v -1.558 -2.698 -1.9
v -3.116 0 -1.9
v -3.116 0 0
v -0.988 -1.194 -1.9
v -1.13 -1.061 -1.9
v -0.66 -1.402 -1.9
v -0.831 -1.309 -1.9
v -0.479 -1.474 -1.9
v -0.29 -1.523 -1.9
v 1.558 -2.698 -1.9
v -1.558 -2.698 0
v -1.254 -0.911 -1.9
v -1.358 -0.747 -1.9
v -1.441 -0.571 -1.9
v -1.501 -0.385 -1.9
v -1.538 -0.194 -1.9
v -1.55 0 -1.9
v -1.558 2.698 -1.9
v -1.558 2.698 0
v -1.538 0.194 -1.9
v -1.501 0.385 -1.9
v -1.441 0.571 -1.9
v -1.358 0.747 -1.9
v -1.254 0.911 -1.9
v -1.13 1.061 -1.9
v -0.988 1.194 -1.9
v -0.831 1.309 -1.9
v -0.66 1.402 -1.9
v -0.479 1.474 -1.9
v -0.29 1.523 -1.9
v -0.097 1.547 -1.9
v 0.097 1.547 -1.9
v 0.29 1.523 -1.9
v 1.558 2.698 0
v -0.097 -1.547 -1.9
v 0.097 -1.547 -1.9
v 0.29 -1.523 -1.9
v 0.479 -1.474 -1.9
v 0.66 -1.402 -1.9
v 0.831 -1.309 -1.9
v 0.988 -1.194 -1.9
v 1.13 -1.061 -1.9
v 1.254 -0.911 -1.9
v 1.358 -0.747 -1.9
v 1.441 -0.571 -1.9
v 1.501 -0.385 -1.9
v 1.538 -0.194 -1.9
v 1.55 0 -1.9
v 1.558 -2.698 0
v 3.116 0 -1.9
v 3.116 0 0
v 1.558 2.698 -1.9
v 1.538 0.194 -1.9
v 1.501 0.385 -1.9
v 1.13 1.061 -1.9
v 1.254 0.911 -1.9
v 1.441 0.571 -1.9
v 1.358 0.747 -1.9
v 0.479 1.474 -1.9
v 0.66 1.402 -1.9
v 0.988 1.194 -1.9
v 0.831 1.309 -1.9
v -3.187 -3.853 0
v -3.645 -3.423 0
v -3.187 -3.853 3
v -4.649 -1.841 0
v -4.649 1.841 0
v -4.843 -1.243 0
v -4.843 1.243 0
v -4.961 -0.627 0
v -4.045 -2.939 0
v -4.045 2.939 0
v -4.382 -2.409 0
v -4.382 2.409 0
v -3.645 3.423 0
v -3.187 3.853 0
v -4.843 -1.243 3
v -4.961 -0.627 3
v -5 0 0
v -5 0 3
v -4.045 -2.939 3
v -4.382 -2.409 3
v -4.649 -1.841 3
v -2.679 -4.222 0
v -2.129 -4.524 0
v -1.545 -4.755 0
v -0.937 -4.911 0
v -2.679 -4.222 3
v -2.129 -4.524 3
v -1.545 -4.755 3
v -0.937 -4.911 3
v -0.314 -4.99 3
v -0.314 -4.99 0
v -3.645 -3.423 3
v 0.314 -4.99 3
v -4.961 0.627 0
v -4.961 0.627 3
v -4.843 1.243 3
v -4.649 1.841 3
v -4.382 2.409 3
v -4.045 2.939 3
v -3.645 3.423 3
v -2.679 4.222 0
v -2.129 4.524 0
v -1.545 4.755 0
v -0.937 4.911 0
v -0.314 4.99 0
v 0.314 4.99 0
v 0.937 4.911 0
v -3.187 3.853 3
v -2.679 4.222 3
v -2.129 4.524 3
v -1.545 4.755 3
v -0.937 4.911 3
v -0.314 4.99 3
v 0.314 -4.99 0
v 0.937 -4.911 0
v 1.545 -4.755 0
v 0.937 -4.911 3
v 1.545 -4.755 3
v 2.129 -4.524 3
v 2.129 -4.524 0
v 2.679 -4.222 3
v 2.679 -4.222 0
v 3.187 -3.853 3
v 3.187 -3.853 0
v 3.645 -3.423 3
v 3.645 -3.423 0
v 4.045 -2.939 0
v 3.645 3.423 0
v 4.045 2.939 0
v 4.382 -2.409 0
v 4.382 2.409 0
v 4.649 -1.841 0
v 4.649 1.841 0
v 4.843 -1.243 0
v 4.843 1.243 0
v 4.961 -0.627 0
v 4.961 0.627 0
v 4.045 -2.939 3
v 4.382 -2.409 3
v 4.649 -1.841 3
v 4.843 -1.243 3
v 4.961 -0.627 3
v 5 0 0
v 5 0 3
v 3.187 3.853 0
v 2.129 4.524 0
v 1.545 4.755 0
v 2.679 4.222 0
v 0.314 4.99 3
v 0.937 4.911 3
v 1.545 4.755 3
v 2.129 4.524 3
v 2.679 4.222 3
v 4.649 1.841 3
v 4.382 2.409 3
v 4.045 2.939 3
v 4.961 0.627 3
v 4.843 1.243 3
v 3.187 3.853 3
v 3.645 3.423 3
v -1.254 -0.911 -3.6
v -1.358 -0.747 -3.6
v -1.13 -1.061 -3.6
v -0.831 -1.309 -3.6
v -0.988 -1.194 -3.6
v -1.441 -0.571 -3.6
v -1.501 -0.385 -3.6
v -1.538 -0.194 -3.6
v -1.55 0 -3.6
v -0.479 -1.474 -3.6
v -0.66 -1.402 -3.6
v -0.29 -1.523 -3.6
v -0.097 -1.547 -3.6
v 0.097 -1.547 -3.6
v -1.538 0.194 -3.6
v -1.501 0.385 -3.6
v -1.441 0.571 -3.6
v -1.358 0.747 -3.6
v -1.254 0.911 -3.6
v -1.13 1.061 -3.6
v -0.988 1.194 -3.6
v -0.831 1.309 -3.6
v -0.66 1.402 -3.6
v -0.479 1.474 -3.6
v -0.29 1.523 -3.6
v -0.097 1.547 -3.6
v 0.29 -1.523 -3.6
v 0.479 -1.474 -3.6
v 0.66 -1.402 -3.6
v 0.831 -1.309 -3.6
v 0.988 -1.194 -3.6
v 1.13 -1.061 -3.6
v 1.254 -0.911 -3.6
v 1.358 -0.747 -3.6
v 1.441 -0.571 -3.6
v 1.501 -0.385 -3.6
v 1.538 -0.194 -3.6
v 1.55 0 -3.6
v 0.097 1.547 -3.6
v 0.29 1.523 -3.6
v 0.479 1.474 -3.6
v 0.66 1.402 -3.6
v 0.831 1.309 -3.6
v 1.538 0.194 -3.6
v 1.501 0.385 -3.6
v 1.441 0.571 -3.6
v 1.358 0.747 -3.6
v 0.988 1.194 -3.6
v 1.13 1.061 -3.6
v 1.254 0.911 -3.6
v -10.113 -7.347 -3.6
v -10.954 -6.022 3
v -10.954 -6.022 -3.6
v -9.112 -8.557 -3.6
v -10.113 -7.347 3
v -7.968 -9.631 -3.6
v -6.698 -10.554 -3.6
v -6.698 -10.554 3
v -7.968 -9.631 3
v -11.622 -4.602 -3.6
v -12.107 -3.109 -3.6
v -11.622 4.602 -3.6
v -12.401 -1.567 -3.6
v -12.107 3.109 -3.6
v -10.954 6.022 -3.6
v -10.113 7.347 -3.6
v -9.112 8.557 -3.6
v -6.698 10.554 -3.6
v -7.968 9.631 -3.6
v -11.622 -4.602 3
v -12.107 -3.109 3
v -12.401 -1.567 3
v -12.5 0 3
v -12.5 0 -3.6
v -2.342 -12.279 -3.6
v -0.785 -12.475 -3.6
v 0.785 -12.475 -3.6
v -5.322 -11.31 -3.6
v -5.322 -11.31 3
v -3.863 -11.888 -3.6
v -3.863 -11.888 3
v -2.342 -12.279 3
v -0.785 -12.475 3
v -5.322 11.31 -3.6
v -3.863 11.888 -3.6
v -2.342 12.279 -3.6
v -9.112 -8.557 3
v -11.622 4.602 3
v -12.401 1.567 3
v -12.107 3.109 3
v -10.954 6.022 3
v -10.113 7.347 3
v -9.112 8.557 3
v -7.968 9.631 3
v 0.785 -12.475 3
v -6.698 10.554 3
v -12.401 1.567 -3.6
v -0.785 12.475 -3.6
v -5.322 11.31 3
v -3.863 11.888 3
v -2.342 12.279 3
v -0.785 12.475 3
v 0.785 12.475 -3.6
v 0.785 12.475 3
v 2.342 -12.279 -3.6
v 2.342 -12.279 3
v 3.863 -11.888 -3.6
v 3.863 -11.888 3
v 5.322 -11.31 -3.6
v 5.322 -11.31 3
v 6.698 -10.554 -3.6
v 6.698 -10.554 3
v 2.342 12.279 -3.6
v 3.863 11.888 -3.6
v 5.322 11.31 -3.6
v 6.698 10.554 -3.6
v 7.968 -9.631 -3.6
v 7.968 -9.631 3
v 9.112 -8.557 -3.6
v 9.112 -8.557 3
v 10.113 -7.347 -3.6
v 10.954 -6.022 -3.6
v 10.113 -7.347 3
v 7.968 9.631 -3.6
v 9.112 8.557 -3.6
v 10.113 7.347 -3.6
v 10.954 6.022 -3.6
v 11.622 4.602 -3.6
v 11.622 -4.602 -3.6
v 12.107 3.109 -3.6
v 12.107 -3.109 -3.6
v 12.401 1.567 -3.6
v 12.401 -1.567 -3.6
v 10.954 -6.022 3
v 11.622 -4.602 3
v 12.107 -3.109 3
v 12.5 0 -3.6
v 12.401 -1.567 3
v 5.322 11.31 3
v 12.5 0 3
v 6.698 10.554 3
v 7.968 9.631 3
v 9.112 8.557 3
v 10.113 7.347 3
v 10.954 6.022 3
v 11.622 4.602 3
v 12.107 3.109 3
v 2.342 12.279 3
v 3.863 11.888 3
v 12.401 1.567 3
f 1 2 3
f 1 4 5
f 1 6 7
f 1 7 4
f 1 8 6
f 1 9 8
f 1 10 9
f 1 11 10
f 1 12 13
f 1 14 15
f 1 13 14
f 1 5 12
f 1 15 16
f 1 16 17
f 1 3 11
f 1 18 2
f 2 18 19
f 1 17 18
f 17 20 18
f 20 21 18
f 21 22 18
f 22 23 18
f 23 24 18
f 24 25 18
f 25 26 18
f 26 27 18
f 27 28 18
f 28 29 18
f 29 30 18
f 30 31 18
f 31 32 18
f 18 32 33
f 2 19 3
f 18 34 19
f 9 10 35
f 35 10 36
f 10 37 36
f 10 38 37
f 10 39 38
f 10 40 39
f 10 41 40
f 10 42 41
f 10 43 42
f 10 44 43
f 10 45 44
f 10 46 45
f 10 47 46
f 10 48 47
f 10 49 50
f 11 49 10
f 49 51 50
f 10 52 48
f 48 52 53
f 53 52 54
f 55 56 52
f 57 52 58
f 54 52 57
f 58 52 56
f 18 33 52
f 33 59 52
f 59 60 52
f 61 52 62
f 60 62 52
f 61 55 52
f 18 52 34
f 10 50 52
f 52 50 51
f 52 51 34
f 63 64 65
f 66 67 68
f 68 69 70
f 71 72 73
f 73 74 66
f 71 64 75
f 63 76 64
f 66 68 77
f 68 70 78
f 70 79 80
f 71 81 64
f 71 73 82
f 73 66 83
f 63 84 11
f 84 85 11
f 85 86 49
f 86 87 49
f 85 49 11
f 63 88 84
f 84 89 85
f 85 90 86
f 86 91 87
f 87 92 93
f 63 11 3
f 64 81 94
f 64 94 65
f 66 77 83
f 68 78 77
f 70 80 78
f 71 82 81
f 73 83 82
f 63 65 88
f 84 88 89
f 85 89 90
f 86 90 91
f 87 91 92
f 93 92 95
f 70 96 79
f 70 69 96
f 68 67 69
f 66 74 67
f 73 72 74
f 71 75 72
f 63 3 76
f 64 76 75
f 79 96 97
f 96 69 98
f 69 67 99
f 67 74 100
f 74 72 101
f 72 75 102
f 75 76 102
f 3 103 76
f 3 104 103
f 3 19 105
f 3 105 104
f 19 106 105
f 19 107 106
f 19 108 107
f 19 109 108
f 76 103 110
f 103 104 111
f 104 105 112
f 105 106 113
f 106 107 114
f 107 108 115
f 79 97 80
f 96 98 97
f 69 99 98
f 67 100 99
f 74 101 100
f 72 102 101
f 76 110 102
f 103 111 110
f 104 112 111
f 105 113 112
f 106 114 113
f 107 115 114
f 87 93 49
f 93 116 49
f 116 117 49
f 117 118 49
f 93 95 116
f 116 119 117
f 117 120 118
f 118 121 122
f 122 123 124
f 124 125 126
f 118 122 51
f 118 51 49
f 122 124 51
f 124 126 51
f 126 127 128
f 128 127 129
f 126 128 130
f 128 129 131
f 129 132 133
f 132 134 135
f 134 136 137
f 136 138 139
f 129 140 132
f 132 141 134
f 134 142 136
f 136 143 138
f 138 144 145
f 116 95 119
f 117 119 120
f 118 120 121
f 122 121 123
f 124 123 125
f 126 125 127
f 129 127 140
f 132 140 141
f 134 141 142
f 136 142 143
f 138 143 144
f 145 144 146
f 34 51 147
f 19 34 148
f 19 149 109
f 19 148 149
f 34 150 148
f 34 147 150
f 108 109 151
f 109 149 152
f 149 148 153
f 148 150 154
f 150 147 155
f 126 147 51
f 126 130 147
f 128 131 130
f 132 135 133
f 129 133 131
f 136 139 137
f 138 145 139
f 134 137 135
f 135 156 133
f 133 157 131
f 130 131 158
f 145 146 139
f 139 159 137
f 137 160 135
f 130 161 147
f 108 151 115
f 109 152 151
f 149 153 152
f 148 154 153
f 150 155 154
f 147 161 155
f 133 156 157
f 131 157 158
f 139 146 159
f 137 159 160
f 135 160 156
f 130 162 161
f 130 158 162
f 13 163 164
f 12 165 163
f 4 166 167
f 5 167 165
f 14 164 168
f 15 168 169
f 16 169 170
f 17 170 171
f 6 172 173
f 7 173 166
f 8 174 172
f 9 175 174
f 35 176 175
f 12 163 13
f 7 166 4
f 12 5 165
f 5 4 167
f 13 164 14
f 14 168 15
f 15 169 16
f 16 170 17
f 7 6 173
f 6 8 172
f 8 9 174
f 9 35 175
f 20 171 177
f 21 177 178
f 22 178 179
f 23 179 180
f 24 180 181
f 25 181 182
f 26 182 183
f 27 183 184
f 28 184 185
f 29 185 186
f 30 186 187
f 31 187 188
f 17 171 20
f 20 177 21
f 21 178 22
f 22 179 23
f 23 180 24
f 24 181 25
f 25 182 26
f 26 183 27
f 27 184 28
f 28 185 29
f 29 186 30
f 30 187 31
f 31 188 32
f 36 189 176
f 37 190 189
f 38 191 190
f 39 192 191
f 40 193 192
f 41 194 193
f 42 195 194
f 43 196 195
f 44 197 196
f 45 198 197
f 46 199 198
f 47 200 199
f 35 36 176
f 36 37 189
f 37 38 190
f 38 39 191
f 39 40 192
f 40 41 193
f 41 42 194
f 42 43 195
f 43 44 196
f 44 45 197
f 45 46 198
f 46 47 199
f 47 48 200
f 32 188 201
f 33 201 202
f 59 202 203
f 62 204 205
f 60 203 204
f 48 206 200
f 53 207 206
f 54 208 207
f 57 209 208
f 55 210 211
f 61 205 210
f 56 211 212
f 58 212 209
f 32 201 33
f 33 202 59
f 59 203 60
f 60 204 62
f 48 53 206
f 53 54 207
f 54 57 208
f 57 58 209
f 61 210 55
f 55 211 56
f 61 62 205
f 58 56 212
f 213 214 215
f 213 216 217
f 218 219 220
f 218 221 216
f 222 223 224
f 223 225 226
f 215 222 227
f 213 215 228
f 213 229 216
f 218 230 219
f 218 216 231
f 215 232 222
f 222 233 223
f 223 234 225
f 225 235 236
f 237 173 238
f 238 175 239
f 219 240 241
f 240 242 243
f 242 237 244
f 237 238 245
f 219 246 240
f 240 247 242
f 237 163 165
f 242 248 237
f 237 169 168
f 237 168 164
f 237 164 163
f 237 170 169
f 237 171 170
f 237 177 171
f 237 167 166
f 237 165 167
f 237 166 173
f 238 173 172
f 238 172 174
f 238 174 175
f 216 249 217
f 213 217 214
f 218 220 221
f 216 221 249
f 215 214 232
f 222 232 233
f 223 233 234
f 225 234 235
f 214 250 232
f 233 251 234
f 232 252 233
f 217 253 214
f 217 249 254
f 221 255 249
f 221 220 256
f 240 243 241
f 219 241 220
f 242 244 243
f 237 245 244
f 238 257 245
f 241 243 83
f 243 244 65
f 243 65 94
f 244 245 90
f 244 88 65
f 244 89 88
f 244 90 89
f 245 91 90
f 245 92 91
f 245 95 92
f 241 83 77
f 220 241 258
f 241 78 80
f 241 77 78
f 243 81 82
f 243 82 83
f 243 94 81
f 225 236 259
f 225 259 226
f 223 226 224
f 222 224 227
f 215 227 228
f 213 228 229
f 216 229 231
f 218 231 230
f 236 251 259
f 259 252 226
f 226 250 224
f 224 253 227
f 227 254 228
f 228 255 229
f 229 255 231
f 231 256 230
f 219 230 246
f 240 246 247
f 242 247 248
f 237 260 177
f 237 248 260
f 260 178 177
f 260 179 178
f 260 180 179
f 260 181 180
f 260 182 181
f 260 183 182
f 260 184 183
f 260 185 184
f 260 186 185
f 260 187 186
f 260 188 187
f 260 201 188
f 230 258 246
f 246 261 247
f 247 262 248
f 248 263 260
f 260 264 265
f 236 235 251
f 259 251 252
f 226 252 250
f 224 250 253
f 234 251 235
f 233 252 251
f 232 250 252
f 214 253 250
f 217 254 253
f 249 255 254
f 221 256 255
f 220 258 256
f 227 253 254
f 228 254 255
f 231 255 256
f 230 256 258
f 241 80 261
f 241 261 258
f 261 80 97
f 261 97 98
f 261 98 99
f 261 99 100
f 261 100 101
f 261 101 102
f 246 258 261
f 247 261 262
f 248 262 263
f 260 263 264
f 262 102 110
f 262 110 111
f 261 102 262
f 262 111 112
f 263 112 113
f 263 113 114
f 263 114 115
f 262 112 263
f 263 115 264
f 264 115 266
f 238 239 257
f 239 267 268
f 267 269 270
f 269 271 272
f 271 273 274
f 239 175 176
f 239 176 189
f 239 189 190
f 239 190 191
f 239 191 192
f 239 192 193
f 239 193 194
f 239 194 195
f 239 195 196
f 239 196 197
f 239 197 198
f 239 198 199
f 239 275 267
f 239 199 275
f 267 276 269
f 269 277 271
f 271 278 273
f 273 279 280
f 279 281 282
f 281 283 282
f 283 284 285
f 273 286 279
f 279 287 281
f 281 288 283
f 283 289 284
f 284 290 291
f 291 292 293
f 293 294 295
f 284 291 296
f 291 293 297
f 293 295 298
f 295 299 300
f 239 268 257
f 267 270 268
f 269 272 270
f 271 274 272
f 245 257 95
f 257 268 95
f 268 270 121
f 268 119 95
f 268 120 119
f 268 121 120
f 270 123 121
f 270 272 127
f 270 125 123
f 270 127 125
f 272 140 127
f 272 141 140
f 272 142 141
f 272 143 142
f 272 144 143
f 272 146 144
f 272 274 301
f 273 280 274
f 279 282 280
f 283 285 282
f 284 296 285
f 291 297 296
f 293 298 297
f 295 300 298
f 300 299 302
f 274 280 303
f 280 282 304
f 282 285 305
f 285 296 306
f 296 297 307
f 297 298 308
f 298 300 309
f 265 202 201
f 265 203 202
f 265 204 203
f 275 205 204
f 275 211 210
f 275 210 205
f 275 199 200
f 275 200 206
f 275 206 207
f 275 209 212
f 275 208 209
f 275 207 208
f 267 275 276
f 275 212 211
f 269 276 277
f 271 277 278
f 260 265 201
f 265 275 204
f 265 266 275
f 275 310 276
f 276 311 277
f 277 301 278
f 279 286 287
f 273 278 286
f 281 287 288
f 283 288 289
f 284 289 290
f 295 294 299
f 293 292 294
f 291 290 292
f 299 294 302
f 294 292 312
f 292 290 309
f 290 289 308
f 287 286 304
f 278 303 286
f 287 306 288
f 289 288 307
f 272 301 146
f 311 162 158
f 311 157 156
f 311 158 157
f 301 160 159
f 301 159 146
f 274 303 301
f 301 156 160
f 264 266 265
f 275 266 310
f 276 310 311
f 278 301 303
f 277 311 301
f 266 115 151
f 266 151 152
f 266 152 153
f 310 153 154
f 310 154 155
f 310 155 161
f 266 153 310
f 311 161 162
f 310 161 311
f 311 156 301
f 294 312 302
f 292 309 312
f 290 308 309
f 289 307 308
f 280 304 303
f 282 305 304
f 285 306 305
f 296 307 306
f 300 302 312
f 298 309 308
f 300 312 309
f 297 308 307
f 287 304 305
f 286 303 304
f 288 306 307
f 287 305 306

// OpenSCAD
$fn = 50;

difference() {
	union() {
		translate(v = [0, 0, -3.5999999999999996]) {
			cylinder(h = 6.6, r = 12.5);
		}
	}
	union() {
		translate(v = [0, 0, 0]) {
			rotate(a = [0, 0, 0]) {
				difference() {
					union() {
						translate(v = [0, 0, -1.9]) {
							linear_extrude(height = 1.9) {
								polygon(points = [[3.1158, 0.0], [1.5579000000000005, 2.698361953111554], [-1.5578999999999994, 2.6983619531115544], [-3.1158, 3.815754496783323e-16], [-1.5579000000000014, -2.6983619531115535], [1.557899999999998, -2.6983619531115552]]);
							}
						}
					}
					union();
				}
			}
		}
		#cylinder(h = 3, r = 5.0);
		#translate(v = [0, 0, -100.0]) {
			cylinder(h = 200, r = 1.55);
		}
	}
}
